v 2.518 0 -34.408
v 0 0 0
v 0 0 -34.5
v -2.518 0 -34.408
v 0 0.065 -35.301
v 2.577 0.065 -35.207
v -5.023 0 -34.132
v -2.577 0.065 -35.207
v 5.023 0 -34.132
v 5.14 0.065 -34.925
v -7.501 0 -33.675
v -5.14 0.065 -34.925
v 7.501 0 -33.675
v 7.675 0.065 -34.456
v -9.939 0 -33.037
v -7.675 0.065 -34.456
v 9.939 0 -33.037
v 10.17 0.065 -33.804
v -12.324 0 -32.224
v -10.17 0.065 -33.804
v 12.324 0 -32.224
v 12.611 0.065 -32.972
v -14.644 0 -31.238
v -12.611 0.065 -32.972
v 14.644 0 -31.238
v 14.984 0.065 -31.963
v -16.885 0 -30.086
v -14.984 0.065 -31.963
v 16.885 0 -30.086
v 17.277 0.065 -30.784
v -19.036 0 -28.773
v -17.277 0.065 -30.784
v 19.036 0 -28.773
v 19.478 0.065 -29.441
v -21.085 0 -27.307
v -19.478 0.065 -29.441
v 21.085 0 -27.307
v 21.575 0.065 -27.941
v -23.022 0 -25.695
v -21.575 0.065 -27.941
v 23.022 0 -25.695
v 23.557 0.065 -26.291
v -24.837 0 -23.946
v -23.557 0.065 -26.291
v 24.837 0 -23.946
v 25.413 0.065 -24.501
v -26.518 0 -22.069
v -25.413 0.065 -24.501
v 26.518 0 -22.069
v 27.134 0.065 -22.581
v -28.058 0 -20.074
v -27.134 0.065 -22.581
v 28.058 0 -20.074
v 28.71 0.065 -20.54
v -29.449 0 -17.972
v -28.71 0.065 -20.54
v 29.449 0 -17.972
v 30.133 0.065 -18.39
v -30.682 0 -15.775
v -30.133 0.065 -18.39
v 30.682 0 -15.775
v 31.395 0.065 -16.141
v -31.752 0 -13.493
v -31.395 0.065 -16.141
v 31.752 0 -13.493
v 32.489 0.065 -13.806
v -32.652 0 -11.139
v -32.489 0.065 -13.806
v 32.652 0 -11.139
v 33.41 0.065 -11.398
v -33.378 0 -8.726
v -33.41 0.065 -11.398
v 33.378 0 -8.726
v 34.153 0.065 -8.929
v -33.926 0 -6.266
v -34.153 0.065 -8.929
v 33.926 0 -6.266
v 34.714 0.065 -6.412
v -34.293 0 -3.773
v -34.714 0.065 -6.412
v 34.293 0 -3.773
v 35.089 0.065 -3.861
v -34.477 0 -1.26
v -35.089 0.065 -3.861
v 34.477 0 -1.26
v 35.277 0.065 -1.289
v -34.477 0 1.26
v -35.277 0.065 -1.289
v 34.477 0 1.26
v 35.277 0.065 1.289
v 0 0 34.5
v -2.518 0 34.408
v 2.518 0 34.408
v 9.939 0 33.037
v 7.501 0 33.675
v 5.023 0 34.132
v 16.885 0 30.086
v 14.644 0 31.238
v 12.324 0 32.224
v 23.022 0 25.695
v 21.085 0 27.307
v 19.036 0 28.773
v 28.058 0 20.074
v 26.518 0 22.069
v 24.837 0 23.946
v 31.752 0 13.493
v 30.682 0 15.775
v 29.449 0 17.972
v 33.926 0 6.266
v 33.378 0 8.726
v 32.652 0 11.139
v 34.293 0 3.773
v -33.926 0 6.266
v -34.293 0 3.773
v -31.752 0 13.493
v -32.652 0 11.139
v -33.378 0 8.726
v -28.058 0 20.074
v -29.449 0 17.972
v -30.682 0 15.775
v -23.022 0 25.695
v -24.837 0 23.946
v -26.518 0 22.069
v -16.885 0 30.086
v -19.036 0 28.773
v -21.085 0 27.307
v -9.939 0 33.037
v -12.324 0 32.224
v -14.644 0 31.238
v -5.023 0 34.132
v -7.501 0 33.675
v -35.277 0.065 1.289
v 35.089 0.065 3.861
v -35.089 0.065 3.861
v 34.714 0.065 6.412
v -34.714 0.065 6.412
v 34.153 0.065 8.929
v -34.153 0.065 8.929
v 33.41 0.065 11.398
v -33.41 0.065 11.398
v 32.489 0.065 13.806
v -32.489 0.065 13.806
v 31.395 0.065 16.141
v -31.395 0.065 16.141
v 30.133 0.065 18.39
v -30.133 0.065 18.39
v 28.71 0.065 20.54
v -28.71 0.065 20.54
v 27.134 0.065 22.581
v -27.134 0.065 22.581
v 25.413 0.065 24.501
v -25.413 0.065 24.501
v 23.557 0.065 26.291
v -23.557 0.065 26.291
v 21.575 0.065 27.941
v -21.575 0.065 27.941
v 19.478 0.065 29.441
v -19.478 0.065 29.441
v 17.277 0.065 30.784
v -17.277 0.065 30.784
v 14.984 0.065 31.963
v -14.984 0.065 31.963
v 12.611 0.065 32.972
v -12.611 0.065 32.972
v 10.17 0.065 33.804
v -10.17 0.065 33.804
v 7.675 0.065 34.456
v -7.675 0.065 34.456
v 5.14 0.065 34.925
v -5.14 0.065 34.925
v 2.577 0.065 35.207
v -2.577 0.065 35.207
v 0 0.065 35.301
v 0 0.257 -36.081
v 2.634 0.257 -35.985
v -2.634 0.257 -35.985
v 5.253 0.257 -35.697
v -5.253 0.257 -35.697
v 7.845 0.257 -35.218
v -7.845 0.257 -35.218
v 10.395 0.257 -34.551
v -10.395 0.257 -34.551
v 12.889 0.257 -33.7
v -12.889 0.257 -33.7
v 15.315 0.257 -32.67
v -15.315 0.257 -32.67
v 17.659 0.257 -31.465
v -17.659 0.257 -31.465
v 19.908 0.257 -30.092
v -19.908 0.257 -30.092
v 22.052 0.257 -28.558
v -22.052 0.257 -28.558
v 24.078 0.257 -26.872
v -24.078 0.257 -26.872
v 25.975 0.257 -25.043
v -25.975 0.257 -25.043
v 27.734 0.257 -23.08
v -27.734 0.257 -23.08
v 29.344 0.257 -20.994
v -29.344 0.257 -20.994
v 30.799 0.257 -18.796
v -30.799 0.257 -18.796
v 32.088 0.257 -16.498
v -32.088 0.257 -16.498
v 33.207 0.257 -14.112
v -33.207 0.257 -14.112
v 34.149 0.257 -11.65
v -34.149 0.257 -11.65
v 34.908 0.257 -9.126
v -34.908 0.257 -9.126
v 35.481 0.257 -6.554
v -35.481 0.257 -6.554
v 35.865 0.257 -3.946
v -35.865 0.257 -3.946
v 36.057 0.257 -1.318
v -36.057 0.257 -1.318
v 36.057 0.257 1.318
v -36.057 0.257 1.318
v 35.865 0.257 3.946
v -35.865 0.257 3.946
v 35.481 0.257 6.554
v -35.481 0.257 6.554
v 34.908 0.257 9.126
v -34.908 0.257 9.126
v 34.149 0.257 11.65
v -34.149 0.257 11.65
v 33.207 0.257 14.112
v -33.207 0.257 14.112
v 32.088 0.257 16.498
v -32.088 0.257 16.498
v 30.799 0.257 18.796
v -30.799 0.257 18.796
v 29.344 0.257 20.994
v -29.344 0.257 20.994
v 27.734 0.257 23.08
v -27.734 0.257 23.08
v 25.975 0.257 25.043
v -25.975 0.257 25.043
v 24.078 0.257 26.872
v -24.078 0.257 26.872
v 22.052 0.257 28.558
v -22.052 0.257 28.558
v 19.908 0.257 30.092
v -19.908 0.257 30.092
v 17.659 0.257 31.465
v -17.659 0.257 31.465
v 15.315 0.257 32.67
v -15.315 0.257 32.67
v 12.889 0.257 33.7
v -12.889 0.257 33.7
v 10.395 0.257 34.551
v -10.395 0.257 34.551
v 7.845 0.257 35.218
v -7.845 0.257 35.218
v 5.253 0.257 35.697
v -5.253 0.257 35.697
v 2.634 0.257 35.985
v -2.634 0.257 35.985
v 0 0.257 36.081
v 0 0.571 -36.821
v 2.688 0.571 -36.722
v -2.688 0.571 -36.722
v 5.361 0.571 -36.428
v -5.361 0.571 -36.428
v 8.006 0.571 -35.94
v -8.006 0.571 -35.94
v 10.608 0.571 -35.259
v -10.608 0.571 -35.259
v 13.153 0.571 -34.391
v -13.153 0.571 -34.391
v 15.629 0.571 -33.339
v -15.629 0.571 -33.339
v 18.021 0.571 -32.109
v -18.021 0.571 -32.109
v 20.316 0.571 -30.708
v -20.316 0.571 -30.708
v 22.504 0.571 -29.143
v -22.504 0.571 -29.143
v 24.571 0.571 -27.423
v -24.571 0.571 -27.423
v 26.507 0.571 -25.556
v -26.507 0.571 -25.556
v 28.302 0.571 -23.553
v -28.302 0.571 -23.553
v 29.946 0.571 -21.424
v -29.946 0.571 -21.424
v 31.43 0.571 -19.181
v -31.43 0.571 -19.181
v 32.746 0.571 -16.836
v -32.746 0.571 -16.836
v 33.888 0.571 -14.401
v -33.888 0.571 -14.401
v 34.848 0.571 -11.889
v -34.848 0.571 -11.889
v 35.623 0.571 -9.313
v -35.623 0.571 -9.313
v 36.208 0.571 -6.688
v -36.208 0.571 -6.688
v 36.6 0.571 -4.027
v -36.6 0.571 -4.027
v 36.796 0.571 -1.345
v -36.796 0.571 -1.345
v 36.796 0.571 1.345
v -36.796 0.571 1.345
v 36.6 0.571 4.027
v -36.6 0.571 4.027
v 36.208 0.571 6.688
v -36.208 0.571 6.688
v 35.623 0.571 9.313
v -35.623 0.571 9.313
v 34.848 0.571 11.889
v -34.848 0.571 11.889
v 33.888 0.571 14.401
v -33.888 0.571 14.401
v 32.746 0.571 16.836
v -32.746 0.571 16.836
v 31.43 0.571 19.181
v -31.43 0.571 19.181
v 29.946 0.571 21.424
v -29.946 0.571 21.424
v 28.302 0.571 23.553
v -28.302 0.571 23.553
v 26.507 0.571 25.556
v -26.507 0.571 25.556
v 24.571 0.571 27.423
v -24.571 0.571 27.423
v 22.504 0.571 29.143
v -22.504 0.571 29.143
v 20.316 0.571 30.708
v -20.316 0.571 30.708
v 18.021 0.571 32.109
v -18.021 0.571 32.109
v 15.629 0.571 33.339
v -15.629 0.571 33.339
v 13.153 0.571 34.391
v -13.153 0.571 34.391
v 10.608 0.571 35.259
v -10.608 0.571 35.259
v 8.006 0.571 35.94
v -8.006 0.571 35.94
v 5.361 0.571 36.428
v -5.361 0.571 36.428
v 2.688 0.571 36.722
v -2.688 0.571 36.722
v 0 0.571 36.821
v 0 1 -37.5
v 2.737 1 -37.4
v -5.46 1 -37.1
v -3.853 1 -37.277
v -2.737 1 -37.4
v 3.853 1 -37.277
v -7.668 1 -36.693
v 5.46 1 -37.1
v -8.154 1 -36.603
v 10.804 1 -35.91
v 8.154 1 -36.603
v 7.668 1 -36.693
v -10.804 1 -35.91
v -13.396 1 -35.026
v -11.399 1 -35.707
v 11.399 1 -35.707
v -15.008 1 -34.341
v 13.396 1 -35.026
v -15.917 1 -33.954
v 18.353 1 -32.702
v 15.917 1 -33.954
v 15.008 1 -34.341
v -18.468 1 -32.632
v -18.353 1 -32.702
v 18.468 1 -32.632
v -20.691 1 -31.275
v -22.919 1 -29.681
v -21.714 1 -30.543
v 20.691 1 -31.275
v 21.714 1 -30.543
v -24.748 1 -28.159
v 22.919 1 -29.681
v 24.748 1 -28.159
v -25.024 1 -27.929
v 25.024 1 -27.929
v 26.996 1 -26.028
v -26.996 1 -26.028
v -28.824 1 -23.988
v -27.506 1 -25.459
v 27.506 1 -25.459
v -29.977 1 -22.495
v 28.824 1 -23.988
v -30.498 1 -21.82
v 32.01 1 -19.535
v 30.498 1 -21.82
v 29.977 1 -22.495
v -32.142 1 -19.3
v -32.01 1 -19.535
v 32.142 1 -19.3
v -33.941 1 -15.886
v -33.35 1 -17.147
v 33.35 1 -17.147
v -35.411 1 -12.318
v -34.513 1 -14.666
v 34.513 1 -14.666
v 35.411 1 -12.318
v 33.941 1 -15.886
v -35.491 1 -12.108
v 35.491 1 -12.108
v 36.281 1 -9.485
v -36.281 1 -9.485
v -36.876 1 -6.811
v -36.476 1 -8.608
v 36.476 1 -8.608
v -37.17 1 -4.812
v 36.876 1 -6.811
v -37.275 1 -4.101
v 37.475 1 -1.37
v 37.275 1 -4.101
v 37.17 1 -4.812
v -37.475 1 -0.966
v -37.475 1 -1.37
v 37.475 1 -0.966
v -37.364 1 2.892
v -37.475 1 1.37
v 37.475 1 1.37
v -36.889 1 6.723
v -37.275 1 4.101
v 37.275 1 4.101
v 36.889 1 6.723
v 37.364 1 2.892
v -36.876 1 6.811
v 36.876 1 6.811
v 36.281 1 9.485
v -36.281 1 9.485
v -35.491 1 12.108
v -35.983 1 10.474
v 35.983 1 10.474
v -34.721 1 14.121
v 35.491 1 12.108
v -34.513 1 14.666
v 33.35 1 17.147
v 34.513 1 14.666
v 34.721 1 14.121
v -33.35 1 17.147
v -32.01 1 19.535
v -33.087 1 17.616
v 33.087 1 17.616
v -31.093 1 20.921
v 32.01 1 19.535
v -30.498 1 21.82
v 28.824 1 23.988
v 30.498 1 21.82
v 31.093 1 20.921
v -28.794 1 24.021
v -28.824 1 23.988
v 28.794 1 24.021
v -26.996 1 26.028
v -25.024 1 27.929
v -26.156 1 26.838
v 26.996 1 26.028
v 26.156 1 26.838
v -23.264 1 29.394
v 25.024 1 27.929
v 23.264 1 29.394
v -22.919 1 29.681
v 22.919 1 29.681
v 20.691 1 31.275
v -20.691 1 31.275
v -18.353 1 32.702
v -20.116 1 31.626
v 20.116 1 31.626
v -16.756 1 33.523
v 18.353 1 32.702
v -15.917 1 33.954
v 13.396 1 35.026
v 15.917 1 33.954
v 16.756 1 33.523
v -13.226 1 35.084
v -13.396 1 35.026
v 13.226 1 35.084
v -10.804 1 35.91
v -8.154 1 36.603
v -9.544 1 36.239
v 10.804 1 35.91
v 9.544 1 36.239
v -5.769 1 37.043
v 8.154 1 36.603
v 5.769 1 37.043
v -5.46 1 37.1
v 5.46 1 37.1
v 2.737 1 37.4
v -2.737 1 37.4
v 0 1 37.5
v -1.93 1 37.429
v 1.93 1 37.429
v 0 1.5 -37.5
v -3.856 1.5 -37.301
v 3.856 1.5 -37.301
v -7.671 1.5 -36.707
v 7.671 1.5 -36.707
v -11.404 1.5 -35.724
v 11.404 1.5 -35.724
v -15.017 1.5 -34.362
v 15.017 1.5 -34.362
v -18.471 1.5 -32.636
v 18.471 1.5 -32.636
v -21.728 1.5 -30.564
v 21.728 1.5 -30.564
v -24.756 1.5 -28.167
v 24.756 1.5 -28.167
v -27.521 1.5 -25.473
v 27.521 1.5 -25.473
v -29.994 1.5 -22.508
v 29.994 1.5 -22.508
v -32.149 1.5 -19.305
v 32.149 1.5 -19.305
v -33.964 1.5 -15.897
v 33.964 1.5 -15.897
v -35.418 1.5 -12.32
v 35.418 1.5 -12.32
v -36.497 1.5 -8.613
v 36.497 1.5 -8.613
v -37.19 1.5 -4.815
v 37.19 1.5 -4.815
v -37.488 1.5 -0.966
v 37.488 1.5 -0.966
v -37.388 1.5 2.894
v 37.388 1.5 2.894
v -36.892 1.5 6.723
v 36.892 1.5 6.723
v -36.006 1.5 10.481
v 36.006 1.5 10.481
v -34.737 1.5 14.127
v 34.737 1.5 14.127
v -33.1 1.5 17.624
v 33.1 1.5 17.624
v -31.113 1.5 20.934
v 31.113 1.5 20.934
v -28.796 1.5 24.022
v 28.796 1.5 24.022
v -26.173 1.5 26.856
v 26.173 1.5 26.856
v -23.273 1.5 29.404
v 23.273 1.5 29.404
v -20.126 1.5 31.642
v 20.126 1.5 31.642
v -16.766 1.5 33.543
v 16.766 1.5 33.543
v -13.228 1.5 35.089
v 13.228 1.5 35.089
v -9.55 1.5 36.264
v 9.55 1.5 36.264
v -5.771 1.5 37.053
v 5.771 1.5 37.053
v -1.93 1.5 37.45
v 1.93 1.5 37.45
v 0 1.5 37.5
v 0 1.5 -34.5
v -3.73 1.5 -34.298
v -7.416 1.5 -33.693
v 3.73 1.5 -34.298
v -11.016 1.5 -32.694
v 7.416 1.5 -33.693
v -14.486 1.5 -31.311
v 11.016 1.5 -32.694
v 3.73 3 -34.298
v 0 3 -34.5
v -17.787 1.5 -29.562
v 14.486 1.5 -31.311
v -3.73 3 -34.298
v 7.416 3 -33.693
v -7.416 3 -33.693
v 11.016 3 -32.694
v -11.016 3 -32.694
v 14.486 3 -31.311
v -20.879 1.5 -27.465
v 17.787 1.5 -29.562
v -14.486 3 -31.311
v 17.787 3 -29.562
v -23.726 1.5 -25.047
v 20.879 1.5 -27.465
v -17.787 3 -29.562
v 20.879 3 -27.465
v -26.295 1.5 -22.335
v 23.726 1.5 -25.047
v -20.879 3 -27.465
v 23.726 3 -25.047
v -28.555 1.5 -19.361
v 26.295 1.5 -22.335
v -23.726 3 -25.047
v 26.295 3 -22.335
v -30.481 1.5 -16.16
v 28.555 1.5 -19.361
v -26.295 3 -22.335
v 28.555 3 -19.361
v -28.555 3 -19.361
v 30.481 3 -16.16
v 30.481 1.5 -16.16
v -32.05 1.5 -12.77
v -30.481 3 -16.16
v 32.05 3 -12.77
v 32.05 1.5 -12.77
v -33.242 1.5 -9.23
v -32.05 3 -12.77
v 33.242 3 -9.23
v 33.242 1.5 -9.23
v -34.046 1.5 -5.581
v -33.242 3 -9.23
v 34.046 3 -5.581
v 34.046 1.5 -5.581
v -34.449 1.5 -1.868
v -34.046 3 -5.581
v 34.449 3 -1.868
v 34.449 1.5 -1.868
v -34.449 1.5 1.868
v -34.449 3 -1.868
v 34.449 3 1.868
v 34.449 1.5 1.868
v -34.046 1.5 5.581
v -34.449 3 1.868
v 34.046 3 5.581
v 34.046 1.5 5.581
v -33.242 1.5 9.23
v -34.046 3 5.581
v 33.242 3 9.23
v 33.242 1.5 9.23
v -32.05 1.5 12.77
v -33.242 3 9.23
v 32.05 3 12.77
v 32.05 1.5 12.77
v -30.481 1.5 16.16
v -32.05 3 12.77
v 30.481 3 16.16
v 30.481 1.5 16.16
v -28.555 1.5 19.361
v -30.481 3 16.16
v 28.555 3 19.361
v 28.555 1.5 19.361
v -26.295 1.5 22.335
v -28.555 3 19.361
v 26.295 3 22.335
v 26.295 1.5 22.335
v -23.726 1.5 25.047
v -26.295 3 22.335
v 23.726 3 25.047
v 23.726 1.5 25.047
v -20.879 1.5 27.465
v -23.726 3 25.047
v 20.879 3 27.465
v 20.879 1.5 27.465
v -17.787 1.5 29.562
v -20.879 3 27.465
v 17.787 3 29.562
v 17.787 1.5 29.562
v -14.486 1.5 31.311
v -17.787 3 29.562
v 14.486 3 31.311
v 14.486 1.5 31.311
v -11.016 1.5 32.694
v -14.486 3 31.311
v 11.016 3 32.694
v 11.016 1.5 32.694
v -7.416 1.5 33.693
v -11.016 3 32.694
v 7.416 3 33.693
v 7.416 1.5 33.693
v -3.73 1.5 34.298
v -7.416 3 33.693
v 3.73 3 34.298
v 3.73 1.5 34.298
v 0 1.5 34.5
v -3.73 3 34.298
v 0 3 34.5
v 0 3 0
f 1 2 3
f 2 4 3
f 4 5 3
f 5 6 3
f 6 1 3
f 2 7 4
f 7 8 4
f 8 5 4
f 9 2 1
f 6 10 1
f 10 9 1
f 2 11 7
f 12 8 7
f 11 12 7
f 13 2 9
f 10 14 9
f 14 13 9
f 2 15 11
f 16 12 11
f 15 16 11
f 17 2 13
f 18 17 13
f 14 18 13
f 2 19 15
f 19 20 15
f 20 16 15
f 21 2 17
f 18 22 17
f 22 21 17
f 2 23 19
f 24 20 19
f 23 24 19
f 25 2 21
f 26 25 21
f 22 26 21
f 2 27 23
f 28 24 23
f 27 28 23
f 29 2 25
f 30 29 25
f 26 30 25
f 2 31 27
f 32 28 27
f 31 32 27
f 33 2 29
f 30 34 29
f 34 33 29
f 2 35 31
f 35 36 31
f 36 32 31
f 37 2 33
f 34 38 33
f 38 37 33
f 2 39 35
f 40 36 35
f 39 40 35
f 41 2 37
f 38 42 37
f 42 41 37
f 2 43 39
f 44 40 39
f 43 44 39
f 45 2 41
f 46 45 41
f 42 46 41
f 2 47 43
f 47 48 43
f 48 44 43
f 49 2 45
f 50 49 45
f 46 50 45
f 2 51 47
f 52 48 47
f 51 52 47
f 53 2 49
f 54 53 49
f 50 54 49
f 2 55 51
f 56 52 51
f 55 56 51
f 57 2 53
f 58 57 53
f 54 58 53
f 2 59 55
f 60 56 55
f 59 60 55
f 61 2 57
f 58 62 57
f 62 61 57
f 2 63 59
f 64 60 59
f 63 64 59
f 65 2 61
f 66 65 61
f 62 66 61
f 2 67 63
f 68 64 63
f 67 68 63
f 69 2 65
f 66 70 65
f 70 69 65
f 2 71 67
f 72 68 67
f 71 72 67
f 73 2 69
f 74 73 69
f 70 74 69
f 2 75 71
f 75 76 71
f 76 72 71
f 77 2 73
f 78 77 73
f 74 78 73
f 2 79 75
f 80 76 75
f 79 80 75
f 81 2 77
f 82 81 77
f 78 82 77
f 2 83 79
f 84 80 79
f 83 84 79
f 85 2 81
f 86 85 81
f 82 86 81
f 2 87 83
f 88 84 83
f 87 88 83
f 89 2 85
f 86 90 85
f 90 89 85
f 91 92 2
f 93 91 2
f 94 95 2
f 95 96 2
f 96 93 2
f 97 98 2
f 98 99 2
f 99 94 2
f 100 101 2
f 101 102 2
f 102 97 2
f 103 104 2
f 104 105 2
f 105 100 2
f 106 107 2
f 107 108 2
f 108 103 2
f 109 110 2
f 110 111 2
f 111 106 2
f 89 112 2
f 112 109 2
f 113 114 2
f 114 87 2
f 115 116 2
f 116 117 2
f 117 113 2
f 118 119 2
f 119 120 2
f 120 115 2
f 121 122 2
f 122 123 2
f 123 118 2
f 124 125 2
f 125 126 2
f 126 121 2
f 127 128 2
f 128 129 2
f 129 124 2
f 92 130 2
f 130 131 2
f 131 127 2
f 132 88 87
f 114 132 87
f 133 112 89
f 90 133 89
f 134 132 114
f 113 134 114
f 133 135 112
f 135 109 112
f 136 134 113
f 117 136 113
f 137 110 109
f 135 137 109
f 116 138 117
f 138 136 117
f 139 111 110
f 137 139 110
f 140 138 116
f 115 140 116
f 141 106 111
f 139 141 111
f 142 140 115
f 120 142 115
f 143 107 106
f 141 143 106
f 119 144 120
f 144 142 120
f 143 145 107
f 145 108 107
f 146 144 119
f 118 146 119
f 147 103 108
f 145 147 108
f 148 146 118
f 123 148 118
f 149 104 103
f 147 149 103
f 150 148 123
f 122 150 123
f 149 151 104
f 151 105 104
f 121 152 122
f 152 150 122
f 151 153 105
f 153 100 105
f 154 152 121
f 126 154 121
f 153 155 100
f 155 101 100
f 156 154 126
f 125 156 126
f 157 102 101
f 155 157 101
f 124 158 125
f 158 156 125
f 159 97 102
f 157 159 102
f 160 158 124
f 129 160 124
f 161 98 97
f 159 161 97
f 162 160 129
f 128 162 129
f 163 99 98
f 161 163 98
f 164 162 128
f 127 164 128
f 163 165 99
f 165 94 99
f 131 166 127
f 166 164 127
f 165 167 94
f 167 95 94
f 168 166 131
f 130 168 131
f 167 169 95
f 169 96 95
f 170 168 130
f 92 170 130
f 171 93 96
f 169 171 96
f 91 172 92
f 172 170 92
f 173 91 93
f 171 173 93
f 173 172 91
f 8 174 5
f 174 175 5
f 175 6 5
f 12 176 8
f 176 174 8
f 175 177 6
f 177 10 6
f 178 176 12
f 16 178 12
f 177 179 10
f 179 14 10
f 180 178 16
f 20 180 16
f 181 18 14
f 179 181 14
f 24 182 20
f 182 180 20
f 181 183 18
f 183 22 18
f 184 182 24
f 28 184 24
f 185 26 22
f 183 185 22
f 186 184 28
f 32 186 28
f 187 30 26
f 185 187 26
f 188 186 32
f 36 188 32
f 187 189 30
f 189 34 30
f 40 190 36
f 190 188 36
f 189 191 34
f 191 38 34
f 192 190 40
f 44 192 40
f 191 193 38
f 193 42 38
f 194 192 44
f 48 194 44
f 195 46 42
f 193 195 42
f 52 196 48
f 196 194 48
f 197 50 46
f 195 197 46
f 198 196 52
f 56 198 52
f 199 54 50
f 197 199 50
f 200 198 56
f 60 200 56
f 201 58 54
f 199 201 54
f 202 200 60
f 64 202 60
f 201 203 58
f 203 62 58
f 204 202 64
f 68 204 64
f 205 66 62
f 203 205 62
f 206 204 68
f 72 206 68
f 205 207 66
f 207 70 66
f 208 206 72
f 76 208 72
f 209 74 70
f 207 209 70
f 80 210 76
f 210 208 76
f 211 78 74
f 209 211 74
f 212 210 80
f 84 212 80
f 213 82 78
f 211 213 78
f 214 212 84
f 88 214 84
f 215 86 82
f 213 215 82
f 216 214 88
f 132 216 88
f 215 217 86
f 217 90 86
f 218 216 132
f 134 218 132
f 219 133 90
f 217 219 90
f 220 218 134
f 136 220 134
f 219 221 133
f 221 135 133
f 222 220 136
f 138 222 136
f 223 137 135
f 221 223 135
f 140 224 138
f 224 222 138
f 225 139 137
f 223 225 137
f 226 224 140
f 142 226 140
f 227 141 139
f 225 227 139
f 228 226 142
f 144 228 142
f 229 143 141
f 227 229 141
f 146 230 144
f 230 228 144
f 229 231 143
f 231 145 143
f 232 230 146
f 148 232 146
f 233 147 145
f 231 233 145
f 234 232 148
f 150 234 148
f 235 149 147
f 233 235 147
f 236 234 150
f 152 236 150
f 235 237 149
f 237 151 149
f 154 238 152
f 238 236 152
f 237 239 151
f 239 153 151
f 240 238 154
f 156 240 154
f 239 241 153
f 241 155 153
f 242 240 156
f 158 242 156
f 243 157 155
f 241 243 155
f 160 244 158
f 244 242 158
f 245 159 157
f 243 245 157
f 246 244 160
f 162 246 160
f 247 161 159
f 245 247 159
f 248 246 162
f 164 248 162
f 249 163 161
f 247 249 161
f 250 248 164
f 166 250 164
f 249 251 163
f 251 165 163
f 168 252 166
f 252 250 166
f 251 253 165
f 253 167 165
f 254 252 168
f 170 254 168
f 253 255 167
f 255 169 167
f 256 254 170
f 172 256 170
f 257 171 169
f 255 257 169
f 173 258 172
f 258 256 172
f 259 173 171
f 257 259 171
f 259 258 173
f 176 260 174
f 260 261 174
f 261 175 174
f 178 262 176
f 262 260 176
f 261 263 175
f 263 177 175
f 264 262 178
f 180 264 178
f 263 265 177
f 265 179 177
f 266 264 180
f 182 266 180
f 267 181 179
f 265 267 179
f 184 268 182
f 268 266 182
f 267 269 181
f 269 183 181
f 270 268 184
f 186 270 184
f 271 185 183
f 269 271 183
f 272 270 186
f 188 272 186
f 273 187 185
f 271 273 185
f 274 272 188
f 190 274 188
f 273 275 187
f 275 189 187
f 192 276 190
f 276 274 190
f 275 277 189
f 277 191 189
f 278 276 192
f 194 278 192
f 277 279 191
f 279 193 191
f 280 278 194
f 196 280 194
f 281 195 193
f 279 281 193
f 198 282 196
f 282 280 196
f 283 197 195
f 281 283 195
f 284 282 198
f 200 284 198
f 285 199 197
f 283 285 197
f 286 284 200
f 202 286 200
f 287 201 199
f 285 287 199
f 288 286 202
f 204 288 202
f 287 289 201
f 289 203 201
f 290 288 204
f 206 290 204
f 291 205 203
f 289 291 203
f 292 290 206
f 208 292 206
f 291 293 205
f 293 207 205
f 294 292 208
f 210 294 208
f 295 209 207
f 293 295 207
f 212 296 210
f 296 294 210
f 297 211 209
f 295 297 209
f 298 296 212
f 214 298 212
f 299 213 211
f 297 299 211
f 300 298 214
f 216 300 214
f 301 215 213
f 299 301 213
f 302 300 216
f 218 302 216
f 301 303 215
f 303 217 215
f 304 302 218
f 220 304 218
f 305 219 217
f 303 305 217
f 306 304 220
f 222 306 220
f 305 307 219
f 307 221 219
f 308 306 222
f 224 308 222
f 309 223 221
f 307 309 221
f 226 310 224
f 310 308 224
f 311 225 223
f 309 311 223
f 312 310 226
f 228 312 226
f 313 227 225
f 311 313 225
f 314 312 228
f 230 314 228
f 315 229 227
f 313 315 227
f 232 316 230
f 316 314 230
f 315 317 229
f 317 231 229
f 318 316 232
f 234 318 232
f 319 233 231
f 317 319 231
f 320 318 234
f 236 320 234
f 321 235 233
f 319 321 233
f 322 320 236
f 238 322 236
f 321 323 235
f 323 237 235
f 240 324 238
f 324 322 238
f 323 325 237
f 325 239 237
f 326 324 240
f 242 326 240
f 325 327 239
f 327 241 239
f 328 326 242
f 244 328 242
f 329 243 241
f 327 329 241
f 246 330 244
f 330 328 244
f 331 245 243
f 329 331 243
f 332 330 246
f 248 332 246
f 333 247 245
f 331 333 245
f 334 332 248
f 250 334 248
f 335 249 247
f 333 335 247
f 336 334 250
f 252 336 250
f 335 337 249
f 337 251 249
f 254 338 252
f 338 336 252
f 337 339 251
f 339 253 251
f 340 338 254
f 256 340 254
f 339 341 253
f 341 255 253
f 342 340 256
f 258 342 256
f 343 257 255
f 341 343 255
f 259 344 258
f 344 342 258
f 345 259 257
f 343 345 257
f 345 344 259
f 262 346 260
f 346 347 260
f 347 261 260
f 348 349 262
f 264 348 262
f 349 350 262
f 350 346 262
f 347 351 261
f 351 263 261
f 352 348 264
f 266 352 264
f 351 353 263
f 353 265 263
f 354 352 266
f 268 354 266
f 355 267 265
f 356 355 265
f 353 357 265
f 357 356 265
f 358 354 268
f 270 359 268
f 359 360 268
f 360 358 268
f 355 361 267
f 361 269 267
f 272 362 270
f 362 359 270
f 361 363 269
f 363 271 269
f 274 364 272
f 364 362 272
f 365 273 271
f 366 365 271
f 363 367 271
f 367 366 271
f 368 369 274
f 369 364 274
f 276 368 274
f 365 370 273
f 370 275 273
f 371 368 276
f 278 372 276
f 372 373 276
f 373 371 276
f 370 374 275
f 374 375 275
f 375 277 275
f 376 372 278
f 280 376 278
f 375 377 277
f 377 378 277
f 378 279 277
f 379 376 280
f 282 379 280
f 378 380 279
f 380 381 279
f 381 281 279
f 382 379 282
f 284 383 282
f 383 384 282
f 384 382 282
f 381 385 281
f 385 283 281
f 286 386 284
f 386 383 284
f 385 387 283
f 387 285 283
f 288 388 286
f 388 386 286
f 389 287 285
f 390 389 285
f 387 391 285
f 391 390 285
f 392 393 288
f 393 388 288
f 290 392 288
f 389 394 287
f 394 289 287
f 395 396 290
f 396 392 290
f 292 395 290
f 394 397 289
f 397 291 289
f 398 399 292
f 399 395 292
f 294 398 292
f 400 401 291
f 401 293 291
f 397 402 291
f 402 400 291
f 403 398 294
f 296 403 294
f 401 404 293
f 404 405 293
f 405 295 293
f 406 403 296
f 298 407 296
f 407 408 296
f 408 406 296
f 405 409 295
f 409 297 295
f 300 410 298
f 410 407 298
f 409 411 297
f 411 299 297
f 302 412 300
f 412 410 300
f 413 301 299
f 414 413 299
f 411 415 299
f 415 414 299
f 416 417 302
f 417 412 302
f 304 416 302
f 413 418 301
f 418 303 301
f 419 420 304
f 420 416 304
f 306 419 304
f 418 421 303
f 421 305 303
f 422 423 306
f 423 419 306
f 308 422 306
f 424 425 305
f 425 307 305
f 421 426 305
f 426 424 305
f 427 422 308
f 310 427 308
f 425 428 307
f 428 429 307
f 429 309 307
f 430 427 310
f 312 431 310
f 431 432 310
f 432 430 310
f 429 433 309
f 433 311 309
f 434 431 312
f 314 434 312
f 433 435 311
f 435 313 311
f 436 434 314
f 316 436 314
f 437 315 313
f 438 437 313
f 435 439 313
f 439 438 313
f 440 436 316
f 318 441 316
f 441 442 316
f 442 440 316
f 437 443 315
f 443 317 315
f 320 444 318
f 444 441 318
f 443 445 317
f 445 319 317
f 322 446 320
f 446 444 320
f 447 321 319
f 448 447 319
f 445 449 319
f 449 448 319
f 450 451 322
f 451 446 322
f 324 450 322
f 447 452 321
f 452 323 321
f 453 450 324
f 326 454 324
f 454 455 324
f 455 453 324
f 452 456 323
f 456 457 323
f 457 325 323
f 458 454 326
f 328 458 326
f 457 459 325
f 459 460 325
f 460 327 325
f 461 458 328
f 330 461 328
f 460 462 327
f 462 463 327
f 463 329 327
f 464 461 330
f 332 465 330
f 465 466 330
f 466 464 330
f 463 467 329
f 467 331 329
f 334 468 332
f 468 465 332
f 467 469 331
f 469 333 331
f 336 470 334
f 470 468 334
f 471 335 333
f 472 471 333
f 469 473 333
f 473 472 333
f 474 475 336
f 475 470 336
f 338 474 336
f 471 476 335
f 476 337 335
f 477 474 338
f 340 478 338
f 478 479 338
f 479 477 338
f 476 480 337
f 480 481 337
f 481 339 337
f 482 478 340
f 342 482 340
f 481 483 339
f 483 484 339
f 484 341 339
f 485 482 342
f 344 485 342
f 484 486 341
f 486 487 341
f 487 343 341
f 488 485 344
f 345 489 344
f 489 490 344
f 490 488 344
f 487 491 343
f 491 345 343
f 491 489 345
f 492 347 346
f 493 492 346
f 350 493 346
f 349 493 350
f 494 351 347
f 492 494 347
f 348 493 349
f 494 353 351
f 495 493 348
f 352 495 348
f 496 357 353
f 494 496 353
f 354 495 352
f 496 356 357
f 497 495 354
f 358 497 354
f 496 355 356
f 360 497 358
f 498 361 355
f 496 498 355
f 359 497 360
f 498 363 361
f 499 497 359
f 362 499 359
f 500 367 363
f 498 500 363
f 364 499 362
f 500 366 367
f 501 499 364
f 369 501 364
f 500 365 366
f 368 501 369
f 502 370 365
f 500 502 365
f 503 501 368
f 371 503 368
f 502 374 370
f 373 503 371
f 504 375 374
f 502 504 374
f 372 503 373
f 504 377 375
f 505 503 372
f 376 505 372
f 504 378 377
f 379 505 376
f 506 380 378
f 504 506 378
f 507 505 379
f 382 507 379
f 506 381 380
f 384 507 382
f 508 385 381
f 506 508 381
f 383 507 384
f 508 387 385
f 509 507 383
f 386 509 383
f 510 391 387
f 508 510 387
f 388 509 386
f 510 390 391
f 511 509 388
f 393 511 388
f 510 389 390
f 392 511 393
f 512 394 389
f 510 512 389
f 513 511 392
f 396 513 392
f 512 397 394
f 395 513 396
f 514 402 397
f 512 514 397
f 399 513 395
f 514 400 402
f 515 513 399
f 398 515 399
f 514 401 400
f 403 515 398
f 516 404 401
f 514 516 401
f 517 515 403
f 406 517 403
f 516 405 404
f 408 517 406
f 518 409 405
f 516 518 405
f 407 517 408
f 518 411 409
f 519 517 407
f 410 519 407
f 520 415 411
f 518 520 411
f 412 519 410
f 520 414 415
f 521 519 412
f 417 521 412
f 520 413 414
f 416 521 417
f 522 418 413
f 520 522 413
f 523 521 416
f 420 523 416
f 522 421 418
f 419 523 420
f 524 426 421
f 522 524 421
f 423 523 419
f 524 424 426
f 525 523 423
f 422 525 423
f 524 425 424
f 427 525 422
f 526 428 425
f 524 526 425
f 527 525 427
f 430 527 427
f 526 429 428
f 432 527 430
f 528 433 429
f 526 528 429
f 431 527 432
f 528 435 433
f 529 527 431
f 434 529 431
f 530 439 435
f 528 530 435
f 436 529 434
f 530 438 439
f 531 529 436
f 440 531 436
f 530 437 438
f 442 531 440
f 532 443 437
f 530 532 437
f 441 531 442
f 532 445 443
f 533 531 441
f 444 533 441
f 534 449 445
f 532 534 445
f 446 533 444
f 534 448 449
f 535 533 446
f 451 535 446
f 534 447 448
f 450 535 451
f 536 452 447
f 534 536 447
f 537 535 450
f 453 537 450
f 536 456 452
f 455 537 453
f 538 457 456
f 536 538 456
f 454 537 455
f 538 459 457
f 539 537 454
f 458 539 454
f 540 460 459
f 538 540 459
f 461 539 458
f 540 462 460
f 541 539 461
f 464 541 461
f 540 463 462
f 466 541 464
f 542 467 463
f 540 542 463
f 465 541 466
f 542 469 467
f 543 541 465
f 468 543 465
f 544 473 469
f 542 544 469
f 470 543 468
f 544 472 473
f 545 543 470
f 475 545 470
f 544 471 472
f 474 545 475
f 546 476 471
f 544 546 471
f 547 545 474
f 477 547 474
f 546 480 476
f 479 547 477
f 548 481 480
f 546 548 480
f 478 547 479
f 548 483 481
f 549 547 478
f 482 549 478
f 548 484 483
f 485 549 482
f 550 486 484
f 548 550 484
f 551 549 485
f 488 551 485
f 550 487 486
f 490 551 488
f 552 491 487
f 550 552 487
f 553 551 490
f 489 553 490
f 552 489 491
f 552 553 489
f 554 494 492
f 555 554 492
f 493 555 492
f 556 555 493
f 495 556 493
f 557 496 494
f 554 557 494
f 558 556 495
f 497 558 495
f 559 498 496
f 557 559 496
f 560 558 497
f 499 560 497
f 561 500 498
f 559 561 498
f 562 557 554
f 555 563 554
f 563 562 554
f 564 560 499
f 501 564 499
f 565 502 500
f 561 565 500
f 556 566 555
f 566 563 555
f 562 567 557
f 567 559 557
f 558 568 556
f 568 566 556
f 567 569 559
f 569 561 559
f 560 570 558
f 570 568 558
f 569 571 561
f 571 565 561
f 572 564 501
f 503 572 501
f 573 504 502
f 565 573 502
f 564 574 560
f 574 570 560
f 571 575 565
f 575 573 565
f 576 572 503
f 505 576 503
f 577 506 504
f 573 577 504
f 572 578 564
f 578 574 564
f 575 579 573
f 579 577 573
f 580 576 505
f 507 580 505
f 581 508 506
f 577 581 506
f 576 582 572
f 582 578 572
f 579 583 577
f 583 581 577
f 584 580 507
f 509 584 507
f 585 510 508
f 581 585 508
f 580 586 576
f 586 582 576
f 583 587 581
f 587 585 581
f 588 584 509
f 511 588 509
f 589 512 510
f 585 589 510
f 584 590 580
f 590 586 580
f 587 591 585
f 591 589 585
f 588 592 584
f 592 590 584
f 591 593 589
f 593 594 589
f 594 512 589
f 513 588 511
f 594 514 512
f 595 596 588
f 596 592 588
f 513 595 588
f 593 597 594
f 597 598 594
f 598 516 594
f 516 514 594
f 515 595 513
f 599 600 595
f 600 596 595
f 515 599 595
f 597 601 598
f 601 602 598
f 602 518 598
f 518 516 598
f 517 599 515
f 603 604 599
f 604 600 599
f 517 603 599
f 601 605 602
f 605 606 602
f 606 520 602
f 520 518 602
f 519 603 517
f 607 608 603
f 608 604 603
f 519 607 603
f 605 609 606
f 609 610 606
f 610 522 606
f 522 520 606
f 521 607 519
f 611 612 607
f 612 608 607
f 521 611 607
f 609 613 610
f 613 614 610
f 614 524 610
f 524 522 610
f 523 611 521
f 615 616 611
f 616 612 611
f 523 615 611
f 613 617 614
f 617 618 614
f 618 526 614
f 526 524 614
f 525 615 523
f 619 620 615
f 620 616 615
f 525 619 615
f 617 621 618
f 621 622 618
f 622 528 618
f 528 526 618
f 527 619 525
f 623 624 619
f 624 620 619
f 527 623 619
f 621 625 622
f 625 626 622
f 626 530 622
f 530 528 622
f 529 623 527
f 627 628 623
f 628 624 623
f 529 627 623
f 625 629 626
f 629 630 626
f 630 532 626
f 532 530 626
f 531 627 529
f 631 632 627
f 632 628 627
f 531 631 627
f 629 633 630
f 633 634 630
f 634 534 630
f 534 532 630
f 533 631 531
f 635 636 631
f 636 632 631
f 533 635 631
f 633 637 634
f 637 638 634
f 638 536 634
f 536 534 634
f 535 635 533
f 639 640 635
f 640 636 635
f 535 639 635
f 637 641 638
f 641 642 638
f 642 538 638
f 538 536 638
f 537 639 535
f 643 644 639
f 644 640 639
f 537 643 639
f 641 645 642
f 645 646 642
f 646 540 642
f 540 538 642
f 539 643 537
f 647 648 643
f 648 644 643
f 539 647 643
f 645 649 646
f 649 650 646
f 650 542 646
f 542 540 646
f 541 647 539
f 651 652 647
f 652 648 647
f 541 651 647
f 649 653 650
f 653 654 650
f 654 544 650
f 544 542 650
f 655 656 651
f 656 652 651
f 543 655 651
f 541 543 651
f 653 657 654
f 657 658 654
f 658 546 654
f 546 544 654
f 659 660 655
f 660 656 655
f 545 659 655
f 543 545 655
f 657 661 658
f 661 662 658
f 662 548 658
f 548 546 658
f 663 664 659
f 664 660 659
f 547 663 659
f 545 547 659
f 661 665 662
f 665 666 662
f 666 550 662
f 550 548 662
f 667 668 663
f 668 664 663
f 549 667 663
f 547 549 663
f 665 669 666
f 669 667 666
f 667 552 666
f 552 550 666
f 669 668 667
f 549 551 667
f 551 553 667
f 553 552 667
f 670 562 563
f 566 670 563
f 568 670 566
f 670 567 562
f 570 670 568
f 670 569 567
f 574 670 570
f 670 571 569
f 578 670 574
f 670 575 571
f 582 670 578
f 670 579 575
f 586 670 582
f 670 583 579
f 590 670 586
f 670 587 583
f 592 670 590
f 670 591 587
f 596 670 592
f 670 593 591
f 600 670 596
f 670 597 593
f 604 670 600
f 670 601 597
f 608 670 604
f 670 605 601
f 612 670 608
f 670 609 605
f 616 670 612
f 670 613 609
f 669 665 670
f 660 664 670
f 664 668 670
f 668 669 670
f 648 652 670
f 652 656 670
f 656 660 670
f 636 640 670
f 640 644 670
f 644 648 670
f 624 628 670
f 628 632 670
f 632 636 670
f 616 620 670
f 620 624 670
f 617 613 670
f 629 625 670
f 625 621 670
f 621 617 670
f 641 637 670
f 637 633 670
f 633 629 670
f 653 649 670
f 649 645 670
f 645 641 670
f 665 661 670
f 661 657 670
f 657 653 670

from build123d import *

# Parameters (mm, degrees)
SKETCH1_R           = 37.5
BOSS_EXTRUDE1_DEPTH = 1
SKETCH2_R           = 34.5
BOSS_EXTRUDE2_DEPTH = 3
FILLET1_R           = 5
SKETCH3_R           = 37.5
BOSS_EXTRUDE3_DEPTH = 0.5


with BuildPart() as part:
    # Sketch1 → Boss-Extrude1 (new body)
    with BuildSketch(Plane(origin=(0, 0, 0), x_dir=(1, 0, 0), z_dir=(0, 1, 0))):
        with Locations(Location((0, 0, 0), (0, 0, 270))):
            Circle(SKETCH1_R)
    extrude(amount=BOSS_EXTRUDE1_DEPTH)

    # Sketch2 → Boss-Extrude2 (add)
    with BuildSketch(Plane(origin=(0, 0, 0), x_dir=(1, 0, 0), z_dir=(0, 1, 0))):
        with Locations(Location((0, 0, 0), (0, 0, 270))):
            Circle(SKETCH2_R)
    extrude(amount=BOSS_EXTRUDE2_DEPTH)

    # Fillet1
    # the kernel refuses this fillet: 5 mm, written as the material it takes off along each edge
    with BuildSketch(Plane(origin=(0, 0, 0), x_dir=(0, 0, 1), z_dir=(-1, 0, 0))) as fillet1_piece_1:
        with BuildLine():
            CenterArc((34.5, 5), FILLET1_R, 270, 36.869897646)
            Line((34.5, 0), (34.5, -0.1))
            Line((34.5, -0.1), (37.5, -0.1))
            Line((37.5, -0.1), (37.6, 0))
            ThreePointArc((37.6, 0), (37.6, 0.5), (37.56, 0.92))
            Line((37.56, 0.92), (37.5, 1))
        make_face()
    revolve(axis=Axis((0, 0, 0), (0, 1, 0)), mode=Mode.SUBTRACT)

    # Sketch3 → Boss-Extrude3 (add)
    with BuildSketch(Plane(origin=(0, 1, 0), x_dir=(1, 0, 0), z_dir=(0, 1, 0))):
        with Locations(Location((0, 0, 0), (0, 0, 270))):
            Circle(SKETCH3_R)
    extrude(amount=BOSS_EXTRUDE3_DEPTH)


solid = part.part
